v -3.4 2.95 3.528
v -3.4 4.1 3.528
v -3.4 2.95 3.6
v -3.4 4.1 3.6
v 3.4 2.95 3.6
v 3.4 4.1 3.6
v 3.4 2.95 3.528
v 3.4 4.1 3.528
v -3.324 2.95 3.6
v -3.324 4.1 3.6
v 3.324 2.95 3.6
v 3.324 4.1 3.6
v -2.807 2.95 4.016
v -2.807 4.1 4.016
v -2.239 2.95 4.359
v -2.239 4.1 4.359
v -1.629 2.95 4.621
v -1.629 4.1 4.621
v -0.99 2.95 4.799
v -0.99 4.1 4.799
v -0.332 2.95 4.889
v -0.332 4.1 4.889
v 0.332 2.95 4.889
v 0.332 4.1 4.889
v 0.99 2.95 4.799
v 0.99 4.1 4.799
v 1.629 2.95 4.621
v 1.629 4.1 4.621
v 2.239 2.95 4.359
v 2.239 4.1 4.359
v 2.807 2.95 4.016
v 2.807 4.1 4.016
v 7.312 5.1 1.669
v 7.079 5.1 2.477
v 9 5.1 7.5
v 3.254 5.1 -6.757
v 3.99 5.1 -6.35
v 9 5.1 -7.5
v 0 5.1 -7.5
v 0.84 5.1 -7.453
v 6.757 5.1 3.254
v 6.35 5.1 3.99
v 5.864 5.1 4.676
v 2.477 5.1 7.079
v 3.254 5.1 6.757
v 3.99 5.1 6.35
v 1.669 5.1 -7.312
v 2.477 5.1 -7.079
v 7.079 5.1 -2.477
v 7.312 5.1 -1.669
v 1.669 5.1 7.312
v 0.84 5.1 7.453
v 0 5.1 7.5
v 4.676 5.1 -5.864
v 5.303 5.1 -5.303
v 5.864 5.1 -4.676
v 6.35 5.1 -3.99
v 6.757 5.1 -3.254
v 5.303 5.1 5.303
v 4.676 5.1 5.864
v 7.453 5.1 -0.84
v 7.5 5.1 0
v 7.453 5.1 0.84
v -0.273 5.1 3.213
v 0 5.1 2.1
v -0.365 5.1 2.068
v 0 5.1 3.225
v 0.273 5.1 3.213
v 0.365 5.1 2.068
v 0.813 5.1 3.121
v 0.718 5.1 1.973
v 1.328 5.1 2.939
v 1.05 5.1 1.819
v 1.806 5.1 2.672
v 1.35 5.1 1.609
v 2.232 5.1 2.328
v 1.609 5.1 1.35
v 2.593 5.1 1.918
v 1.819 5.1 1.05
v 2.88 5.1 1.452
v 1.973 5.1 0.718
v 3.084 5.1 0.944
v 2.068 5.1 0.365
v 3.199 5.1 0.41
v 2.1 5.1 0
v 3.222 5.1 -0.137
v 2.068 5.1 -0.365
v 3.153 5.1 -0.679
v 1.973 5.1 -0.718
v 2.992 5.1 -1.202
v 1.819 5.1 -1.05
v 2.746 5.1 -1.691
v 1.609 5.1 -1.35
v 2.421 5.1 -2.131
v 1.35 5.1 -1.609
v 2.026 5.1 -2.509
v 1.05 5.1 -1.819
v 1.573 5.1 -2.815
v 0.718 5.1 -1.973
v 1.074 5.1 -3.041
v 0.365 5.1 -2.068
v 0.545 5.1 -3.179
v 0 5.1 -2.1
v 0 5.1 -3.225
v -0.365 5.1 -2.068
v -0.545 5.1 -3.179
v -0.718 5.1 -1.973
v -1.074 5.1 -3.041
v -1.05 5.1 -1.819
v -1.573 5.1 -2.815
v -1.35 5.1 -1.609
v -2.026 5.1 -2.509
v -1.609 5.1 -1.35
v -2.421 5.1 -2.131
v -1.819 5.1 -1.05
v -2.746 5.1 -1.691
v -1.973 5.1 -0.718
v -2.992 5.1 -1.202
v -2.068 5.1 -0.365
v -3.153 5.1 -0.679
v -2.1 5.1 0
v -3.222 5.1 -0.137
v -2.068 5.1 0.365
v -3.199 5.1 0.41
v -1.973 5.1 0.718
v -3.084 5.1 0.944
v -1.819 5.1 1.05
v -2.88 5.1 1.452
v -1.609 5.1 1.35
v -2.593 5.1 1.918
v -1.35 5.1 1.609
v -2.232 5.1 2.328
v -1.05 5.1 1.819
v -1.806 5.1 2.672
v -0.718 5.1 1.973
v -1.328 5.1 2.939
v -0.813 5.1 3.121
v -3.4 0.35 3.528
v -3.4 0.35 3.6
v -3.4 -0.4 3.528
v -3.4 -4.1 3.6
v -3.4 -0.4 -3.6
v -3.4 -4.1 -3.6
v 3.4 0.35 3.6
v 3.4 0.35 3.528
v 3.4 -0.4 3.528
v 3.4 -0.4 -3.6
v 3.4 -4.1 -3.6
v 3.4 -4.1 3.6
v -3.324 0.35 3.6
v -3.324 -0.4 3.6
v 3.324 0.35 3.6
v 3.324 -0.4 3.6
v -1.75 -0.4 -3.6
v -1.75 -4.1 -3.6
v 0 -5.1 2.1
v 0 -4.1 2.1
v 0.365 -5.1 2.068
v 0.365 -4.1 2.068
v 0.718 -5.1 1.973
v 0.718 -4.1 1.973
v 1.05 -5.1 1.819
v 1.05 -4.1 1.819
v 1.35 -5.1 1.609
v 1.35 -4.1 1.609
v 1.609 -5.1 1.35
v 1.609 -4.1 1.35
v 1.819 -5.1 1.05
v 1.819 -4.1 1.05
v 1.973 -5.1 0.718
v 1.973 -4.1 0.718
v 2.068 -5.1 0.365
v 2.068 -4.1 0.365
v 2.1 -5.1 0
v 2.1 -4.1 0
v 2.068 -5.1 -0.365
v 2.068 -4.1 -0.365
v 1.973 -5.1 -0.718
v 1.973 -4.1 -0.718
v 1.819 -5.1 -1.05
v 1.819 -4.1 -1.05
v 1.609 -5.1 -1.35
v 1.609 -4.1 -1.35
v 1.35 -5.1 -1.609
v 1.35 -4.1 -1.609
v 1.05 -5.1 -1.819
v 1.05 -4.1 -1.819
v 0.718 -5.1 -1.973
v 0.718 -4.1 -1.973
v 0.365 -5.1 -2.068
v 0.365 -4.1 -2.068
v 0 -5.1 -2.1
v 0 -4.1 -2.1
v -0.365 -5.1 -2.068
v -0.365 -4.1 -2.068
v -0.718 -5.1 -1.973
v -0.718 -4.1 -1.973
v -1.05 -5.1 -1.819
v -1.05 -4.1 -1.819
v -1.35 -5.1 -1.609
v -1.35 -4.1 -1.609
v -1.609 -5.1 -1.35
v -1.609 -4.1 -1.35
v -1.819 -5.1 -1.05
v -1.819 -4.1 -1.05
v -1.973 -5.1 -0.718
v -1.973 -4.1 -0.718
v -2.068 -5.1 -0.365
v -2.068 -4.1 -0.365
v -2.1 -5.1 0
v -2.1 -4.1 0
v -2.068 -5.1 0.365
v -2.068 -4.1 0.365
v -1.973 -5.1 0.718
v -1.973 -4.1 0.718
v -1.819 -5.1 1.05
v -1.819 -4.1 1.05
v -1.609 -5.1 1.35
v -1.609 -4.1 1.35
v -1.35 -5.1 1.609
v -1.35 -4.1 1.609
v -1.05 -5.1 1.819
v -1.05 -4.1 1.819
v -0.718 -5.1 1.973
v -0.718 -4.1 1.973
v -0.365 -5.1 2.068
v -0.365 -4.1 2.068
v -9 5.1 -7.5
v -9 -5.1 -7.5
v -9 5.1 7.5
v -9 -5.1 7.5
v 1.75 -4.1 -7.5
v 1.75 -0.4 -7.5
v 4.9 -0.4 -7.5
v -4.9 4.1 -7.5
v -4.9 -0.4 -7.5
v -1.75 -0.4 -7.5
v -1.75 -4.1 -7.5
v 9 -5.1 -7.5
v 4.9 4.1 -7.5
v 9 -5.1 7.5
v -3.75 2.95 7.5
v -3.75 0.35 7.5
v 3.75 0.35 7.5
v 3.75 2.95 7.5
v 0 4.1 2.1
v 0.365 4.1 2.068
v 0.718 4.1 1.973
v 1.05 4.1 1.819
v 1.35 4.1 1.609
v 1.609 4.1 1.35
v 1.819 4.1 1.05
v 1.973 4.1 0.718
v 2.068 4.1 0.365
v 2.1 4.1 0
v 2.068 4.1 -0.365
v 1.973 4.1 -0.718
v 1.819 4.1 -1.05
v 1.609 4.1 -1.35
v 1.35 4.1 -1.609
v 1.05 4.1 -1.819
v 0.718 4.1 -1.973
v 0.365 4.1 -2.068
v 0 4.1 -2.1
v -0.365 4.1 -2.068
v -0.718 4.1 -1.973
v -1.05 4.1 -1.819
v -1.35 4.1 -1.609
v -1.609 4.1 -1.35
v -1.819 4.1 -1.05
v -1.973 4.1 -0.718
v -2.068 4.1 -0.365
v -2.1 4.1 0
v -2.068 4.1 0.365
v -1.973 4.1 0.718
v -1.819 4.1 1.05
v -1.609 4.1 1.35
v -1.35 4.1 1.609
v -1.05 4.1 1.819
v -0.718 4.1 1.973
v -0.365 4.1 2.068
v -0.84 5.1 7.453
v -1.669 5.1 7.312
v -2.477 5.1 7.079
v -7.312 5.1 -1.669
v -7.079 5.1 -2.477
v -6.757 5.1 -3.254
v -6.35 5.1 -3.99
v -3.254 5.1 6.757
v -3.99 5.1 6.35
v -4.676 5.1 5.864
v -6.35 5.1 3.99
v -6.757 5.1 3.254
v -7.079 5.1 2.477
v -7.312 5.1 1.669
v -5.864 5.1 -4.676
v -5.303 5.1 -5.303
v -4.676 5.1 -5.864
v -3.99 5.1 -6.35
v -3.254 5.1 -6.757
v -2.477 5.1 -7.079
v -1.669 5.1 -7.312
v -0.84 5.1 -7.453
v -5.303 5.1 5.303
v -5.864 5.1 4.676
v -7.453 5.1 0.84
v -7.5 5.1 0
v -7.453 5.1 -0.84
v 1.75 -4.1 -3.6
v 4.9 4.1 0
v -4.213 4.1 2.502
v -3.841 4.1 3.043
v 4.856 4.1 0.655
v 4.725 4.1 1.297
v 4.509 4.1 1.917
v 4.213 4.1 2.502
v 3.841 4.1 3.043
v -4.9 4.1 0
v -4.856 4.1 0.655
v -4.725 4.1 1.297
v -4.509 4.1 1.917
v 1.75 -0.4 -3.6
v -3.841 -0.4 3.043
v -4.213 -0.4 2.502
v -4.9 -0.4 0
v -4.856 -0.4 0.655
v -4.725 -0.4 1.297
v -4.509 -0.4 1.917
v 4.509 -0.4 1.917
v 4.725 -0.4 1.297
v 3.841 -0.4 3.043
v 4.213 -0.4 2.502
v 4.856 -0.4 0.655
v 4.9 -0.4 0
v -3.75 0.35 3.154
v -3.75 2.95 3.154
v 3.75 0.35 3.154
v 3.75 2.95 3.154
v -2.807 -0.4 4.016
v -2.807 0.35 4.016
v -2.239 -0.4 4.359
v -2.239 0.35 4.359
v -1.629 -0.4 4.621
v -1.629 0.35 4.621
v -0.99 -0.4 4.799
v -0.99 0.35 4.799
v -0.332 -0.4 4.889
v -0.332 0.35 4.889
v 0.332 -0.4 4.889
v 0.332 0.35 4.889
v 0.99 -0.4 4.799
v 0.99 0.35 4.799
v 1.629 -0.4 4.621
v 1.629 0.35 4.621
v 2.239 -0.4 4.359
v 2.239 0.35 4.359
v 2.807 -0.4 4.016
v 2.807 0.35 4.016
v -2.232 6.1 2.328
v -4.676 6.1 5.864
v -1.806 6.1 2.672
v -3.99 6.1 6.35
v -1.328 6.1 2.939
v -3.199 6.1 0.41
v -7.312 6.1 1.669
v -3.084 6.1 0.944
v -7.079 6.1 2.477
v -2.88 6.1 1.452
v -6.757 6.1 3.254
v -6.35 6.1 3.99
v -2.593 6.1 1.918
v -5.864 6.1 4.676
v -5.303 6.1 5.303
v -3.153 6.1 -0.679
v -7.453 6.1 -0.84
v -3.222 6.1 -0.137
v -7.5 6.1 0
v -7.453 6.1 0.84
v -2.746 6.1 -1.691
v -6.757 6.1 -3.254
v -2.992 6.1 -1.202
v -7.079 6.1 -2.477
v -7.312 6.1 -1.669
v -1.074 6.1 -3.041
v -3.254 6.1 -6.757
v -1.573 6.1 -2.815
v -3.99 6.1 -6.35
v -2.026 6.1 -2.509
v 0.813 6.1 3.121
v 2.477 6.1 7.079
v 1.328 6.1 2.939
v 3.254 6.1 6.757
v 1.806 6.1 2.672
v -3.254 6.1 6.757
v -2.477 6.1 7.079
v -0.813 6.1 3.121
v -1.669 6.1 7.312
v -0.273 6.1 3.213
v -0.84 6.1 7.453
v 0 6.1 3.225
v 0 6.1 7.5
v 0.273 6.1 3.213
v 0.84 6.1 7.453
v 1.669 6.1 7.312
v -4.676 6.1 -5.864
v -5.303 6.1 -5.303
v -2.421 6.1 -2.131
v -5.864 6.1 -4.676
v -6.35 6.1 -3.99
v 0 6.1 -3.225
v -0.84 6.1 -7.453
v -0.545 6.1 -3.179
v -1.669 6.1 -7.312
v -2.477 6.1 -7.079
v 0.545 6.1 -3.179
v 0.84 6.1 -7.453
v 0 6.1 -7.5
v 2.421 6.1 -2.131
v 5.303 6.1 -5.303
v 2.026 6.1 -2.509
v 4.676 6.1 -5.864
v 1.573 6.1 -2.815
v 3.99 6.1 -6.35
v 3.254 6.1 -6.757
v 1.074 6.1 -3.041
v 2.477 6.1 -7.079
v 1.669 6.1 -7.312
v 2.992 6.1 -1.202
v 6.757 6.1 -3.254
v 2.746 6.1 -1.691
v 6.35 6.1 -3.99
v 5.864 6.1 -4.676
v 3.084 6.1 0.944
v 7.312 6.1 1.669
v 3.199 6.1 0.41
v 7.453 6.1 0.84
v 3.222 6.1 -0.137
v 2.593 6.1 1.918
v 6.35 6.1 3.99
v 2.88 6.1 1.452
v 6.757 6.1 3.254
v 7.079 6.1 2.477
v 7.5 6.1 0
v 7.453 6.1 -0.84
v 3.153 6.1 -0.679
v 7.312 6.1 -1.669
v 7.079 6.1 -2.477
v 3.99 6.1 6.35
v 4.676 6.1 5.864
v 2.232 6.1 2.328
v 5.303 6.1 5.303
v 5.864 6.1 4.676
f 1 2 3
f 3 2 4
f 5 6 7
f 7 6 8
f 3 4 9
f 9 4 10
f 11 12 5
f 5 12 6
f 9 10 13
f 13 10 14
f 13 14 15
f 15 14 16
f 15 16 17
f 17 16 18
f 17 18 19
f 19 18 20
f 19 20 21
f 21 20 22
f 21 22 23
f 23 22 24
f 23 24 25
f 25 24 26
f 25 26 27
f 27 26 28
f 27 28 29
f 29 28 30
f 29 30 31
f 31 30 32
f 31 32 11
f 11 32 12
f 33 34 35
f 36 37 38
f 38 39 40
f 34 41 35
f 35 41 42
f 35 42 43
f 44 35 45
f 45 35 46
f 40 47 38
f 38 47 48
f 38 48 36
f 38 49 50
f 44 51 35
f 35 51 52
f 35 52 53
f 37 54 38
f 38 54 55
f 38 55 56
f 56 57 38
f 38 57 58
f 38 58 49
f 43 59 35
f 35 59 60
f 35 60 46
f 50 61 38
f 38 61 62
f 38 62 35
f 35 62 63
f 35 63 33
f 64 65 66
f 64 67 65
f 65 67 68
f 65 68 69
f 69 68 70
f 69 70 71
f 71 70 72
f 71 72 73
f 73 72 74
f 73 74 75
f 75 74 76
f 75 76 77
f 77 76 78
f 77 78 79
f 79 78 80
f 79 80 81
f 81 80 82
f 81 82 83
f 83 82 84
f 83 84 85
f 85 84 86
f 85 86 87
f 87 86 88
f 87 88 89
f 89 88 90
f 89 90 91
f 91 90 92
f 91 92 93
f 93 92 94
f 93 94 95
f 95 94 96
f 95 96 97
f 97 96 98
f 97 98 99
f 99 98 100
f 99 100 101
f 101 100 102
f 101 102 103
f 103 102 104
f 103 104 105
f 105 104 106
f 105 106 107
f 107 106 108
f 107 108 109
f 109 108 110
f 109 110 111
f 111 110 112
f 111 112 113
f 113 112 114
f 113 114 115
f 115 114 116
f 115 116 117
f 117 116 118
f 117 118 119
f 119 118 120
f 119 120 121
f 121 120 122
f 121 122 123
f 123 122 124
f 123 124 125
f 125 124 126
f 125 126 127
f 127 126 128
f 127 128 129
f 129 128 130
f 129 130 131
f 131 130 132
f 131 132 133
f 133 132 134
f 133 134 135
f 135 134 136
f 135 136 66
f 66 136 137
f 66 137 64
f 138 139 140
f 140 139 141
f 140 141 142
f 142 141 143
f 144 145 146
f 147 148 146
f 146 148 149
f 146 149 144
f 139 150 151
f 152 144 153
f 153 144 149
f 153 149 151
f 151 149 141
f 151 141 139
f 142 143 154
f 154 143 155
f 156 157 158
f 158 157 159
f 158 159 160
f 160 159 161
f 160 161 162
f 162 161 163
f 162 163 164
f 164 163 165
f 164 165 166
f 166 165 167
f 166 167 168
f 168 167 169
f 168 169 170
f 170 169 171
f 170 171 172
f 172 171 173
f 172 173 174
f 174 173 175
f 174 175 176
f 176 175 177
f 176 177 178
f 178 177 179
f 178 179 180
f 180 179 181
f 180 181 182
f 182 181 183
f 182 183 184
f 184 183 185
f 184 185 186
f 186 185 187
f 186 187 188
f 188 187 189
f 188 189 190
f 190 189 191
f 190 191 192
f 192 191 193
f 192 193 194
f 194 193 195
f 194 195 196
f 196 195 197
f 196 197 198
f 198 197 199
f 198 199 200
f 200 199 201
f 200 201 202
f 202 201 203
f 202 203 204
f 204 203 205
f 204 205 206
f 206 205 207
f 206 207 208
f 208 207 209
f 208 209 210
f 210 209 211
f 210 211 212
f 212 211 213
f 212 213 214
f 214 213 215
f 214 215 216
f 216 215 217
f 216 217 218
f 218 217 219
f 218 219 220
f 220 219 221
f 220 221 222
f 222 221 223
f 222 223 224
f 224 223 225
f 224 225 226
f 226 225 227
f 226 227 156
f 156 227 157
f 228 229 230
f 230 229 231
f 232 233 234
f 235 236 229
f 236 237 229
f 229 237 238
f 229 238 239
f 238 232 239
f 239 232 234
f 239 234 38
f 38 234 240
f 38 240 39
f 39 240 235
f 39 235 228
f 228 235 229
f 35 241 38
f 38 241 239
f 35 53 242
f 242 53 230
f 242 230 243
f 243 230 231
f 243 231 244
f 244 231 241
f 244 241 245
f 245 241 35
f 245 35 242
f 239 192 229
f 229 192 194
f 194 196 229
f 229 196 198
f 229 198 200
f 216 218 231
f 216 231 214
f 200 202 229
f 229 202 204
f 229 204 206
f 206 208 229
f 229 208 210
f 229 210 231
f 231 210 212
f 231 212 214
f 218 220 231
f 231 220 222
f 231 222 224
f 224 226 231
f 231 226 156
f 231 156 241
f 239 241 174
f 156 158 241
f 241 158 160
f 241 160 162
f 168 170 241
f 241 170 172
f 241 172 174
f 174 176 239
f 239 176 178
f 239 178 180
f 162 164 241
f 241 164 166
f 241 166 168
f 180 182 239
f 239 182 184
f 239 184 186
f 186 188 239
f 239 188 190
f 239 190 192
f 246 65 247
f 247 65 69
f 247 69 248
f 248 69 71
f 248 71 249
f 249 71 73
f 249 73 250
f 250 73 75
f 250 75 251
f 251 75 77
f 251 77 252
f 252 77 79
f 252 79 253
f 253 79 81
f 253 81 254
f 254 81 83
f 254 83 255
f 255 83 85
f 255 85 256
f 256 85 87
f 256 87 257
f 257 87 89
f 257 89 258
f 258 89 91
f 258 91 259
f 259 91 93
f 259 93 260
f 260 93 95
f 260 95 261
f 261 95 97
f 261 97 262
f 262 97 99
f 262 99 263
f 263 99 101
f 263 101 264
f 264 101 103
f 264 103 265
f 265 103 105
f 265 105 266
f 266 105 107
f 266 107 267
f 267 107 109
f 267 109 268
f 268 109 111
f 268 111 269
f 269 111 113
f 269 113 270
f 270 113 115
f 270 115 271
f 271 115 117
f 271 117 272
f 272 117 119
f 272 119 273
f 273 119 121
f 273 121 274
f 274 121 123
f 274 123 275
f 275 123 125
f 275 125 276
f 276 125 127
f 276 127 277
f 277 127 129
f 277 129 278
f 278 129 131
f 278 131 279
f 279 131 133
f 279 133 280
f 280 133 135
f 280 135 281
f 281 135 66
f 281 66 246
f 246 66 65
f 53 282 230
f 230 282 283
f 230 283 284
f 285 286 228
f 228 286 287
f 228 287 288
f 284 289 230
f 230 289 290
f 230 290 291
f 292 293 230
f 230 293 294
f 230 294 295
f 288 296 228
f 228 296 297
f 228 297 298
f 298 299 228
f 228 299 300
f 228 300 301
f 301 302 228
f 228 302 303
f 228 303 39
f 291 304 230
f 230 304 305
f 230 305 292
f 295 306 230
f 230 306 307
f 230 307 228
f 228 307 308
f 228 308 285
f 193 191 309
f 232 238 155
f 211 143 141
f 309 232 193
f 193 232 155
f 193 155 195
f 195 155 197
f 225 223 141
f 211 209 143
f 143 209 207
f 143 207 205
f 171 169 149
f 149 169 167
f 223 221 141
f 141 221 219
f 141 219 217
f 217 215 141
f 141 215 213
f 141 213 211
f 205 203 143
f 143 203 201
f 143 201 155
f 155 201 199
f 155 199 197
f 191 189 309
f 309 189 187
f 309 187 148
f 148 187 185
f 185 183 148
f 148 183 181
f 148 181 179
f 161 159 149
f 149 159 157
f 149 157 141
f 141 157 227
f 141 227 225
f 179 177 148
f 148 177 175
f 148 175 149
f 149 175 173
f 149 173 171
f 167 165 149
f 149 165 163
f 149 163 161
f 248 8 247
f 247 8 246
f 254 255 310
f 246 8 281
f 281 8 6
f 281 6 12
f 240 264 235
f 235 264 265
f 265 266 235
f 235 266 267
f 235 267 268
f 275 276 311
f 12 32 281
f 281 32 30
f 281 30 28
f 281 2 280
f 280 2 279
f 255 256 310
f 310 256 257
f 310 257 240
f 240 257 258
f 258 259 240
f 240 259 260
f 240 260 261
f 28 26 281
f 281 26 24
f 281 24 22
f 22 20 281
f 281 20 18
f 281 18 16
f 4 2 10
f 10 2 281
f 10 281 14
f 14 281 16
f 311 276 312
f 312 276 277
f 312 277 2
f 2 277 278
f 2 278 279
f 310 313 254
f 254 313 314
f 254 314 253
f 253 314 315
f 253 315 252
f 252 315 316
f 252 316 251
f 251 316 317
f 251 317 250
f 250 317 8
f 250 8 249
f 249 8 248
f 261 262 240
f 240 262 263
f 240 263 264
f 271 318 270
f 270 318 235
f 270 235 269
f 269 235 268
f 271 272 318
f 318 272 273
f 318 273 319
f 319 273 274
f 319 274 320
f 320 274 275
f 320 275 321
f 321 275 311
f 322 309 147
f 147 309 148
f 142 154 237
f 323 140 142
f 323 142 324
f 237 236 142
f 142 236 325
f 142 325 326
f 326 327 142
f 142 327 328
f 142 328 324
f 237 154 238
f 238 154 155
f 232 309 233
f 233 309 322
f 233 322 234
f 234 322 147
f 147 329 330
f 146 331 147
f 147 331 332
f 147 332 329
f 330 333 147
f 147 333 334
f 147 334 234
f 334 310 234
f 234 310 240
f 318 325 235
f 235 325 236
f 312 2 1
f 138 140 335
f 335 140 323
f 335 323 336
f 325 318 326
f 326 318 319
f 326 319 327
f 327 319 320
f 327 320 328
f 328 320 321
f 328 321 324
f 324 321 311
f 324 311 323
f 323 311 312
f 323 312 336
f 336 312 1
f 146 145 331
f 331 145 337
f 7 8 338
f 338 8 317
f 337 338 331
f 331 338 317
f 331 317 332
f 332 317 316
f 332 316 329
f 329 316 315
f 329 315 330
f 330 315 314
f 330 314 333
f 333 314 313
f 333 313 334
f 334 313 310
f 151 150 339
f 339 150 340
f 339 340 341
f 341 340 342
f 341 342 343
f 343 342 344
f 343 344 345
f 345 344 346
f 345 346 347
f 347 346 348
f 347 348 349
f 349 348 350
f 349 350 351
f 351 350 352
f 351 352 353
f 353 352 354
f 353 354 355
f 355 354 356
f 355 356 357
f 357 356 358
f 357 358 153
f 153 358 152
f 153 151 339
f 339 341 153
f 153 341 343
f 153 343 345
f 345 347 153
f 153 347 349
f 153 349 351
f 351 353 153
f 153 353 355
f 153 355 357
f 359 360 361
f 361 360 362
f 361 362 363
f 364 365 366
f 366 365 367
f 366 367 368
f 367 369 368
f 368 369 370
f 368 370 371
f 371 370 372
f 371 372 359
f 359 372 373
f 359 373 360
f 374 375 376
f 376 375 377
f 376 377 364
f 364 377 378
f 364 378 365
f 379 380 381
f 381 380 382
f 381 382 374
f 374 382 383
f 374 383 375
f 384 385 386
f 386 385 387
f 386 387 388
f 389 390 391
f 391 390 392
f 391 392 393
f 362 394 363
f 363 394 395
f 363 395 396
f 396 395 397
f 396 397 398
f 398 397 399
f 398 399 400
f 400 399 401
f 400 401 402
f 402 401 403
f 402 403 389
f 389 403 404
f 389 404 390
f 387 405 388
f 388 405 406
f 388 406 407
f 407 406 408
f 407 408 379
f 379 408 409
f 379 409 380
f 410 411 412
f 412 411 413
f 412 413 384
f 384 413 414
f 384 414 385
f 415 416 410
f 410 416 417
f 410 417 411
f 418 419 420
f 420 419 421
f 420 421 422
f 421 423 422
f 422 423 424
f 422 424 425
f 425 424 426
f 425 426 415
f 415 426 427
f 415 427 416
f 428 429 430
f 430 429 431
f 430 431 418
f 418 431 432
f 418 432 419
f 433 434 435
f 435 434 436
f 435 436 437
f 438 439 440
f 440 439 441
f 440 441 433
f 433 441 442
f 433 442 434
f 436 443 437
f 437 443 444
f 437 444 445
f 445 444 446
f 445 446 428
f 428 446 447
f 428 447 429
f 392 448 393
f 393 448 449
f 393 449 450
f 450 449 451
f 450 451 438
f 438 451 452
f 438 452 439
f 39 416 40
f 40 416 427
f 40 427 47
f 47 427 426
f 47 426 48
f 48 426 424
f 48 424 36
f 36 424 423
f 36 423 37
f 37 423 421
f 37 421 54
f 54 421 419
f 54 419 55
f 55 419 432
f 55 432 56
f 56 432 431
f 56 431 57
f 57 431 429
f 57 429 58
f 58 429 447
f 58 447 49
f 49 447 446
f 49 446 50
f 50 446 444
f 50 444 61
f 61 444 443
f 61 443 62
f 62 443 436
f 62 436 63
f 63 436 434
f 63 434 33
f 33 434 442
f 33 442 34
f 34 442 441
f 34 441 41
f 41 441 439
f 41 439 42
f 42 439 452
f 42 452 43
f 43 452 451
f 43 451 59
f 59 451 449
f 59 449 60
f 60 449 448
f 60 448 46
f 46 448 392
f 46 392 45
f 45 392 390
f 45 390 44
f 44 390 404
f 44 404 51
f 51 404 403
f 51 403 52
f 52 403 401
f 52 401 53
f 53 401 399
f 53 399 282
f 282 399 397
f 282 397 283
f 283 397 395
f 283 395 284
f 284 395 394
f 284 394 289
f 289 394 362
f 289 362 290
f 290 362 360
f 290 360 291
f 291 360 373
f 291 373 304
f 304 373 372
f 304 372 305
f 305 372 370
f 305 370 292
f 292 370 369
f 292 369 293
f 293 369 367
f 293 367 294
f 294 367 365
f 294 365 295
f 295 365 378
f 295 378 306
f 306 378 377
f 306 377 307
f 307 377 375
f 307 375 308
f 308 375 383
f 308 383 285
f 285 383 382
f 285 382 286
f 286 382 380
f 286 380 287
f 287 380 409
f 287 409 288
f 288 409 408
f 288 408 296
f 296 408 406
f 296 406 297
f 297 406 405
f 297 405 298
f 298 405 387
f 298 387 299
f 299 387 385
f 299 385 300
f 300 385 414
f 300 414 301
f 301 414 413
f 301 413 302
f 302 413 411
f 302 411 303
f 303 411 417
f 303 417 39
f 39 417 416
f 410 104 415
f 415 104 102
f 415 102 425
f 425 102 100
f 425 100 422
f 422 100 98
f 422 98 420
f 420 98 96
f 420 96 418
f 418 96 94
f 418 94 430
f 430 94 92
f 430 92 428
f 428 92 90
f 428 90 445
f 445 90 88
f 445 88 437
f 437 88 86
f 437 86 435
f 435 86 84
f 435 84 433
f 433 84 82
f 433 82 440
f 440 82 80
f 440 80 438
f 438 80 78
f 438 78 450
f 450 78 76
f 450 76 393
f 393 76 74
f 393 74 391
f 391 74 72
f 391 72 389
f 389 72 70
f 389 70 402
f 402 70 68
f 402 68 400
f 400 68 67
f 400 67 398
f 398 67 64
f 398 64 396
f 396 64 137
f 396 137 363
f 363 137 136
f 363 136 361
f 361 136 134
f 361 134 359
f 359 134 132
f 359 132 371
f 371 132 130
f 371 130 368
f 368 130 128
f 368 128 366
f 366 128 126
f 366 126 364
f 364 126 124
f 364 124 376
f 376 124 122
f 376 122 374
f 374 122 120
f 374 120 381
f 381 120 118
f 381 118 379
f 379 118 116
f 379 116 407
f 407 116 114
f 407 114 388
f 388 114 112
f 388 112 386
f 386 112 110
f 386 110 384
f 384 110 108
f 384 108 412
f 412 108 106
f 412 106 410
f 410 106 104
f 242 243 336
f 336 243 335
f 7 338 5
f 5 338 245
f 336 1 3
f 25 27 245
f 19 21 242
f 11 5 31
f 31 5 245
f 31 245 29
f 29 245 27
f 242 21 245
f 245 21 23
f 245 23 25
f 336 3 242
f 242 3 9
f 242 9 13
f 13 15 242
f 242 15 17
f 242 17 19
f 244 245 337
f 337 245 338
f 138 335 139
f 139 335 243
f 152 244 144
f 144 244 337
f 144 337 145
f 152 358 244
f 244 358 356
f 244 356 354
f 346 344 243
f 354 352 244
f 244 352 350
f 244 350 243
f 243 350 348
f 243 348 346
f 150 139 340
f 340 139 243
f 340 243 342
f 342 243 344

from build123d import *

# Parameters (mm, degrees)
BOSS_EXTRUDE1_DEPTH      = 5.1
BOSS_EXTRUDE1_DEPTH_BACK = 5.1
SKETCH1_W                = 18
SKETCH1_H                = 15
SKETCH1_R                = 2.1
CUT_EXTRUDE1_DEPTH       = 4.1
CUT_EXTRUDE1_DEPTH_BACK  = 4.1
SKETCH4_W                = 6.8
SKETCH4_H                = 7.2
CUT_EXTRUDE2_DEPTH       = 7.5
SKETCH6_R                = 4.9
CUT_EXTRUDE4_DEPTH       = 4.5
SKETCH7_R                = 7.5
SKETCH7_R_2              = 3.225
BOSS_EXTRUDE2_DEPTH      = 1
SKETCH8_W                = 7.5
SKETCH8_H                = 2.6
CUT_EXTRUDE5_DEPTH       = 6.5


with BuildPart() as part:
    # Sketch1 → Boss-Extrude1 (new, two sides: drawn at the far end of the back side and taken through both)
    with BuildSketch(Plane(origin=(0, 0, 0), x_dir=(1, 0, 0), z_dir=(0, 1, 0)).offset(-BOSS_EXTRUDE1_DEPTH_BACK)):
        Rectangle(SKETCH1_W, SKETCH1_H)
        with Locations(Location((0, 0, 0), (0, 0, 270))):
            Circle(SKETCH1_R, mode=Mode.SUBTRACT)
    extrude(amount=BOSS_EXTRUDE1_DEPTH + BOSS_EXTRUDE1_DEPTH_BACK)

    # Sketch4 → Cut-Extrude1 (cut, two sides: drawn at the far end of the back side and taken through both)
    with BuildSketch(Plane(origin=(0, 0, 0), x_dir=(1, 0, 0), z_dir=(0, 1, 0)).offset(-CUT_EXTRUDE1_DEPTH_BACK)):
        Rectangle(SKETCH4_W, SKETCH4_H)
    extrude(amount=CUT_EXTRUDE1_DEPTH + CUT_EXTRUDE1_DEPTH_BACK, mode=Mode.SUBTRACT)

    # Sketch5 → Cut-Extrude2 (cut)
    with BuildSketch(Plane(origin=(0, 0, -7.5), x_dir=(-1, 0, 0), z_dir=(0, 0, -1))):
        Polygon((1.75, -0.4), (4.9, -0.4), (4.9, 4.1), (-4.9, 4.1), (-4.9, -0.4), (-1.75, -0.4), (-1.75, -4.1), (1.75, -4.1), align=None)
    extrude(amount=-CUT_EXTRUDE2_DEPTH, mode=Mode.SUBTRACT)

    # Sketch6 → Cut-Extrude4 (cut)
    with BuildSketch(Plane.XZ.offset(-4.1)):
        Circle(SKETCH6_R)
    extrude(amount=CUT_EXTRUDE4_DEPTH, mode=Mode.SUBTRACT)

    # Sketch7 → Boss-Extrude2 (add)
    with BuildSketch(Plane(origin=(0, 5.1, 0), x_dir=(1, 0, 0), z_dir=(0, 1, 0))):
        with Locations(Location((0, 0, 0), (0, 0, 270))):
            Circle(SKETCH7_R)
        with Locations(Location((0, 0, 0), (0, 0, 270))):
            Circle(SKETCH7_R_2, mode=Mode.SUBTRACT)
    extrude(amount=BOSS_EXTRUDE2_DEPTH)

    # Sketch8 → Cut-Extrude5 (cut)
    with BuildSketch(Plane.XY.offset(7.5)):
        with Locations((0, 1.65)):
            Rectangle(SKETCH8_W, SKETCH8_H)
    extrude(amount=-CUT_EXTRUDE5_DEPTH, mode=Mode.SUBTRACT)


solid = part.part
